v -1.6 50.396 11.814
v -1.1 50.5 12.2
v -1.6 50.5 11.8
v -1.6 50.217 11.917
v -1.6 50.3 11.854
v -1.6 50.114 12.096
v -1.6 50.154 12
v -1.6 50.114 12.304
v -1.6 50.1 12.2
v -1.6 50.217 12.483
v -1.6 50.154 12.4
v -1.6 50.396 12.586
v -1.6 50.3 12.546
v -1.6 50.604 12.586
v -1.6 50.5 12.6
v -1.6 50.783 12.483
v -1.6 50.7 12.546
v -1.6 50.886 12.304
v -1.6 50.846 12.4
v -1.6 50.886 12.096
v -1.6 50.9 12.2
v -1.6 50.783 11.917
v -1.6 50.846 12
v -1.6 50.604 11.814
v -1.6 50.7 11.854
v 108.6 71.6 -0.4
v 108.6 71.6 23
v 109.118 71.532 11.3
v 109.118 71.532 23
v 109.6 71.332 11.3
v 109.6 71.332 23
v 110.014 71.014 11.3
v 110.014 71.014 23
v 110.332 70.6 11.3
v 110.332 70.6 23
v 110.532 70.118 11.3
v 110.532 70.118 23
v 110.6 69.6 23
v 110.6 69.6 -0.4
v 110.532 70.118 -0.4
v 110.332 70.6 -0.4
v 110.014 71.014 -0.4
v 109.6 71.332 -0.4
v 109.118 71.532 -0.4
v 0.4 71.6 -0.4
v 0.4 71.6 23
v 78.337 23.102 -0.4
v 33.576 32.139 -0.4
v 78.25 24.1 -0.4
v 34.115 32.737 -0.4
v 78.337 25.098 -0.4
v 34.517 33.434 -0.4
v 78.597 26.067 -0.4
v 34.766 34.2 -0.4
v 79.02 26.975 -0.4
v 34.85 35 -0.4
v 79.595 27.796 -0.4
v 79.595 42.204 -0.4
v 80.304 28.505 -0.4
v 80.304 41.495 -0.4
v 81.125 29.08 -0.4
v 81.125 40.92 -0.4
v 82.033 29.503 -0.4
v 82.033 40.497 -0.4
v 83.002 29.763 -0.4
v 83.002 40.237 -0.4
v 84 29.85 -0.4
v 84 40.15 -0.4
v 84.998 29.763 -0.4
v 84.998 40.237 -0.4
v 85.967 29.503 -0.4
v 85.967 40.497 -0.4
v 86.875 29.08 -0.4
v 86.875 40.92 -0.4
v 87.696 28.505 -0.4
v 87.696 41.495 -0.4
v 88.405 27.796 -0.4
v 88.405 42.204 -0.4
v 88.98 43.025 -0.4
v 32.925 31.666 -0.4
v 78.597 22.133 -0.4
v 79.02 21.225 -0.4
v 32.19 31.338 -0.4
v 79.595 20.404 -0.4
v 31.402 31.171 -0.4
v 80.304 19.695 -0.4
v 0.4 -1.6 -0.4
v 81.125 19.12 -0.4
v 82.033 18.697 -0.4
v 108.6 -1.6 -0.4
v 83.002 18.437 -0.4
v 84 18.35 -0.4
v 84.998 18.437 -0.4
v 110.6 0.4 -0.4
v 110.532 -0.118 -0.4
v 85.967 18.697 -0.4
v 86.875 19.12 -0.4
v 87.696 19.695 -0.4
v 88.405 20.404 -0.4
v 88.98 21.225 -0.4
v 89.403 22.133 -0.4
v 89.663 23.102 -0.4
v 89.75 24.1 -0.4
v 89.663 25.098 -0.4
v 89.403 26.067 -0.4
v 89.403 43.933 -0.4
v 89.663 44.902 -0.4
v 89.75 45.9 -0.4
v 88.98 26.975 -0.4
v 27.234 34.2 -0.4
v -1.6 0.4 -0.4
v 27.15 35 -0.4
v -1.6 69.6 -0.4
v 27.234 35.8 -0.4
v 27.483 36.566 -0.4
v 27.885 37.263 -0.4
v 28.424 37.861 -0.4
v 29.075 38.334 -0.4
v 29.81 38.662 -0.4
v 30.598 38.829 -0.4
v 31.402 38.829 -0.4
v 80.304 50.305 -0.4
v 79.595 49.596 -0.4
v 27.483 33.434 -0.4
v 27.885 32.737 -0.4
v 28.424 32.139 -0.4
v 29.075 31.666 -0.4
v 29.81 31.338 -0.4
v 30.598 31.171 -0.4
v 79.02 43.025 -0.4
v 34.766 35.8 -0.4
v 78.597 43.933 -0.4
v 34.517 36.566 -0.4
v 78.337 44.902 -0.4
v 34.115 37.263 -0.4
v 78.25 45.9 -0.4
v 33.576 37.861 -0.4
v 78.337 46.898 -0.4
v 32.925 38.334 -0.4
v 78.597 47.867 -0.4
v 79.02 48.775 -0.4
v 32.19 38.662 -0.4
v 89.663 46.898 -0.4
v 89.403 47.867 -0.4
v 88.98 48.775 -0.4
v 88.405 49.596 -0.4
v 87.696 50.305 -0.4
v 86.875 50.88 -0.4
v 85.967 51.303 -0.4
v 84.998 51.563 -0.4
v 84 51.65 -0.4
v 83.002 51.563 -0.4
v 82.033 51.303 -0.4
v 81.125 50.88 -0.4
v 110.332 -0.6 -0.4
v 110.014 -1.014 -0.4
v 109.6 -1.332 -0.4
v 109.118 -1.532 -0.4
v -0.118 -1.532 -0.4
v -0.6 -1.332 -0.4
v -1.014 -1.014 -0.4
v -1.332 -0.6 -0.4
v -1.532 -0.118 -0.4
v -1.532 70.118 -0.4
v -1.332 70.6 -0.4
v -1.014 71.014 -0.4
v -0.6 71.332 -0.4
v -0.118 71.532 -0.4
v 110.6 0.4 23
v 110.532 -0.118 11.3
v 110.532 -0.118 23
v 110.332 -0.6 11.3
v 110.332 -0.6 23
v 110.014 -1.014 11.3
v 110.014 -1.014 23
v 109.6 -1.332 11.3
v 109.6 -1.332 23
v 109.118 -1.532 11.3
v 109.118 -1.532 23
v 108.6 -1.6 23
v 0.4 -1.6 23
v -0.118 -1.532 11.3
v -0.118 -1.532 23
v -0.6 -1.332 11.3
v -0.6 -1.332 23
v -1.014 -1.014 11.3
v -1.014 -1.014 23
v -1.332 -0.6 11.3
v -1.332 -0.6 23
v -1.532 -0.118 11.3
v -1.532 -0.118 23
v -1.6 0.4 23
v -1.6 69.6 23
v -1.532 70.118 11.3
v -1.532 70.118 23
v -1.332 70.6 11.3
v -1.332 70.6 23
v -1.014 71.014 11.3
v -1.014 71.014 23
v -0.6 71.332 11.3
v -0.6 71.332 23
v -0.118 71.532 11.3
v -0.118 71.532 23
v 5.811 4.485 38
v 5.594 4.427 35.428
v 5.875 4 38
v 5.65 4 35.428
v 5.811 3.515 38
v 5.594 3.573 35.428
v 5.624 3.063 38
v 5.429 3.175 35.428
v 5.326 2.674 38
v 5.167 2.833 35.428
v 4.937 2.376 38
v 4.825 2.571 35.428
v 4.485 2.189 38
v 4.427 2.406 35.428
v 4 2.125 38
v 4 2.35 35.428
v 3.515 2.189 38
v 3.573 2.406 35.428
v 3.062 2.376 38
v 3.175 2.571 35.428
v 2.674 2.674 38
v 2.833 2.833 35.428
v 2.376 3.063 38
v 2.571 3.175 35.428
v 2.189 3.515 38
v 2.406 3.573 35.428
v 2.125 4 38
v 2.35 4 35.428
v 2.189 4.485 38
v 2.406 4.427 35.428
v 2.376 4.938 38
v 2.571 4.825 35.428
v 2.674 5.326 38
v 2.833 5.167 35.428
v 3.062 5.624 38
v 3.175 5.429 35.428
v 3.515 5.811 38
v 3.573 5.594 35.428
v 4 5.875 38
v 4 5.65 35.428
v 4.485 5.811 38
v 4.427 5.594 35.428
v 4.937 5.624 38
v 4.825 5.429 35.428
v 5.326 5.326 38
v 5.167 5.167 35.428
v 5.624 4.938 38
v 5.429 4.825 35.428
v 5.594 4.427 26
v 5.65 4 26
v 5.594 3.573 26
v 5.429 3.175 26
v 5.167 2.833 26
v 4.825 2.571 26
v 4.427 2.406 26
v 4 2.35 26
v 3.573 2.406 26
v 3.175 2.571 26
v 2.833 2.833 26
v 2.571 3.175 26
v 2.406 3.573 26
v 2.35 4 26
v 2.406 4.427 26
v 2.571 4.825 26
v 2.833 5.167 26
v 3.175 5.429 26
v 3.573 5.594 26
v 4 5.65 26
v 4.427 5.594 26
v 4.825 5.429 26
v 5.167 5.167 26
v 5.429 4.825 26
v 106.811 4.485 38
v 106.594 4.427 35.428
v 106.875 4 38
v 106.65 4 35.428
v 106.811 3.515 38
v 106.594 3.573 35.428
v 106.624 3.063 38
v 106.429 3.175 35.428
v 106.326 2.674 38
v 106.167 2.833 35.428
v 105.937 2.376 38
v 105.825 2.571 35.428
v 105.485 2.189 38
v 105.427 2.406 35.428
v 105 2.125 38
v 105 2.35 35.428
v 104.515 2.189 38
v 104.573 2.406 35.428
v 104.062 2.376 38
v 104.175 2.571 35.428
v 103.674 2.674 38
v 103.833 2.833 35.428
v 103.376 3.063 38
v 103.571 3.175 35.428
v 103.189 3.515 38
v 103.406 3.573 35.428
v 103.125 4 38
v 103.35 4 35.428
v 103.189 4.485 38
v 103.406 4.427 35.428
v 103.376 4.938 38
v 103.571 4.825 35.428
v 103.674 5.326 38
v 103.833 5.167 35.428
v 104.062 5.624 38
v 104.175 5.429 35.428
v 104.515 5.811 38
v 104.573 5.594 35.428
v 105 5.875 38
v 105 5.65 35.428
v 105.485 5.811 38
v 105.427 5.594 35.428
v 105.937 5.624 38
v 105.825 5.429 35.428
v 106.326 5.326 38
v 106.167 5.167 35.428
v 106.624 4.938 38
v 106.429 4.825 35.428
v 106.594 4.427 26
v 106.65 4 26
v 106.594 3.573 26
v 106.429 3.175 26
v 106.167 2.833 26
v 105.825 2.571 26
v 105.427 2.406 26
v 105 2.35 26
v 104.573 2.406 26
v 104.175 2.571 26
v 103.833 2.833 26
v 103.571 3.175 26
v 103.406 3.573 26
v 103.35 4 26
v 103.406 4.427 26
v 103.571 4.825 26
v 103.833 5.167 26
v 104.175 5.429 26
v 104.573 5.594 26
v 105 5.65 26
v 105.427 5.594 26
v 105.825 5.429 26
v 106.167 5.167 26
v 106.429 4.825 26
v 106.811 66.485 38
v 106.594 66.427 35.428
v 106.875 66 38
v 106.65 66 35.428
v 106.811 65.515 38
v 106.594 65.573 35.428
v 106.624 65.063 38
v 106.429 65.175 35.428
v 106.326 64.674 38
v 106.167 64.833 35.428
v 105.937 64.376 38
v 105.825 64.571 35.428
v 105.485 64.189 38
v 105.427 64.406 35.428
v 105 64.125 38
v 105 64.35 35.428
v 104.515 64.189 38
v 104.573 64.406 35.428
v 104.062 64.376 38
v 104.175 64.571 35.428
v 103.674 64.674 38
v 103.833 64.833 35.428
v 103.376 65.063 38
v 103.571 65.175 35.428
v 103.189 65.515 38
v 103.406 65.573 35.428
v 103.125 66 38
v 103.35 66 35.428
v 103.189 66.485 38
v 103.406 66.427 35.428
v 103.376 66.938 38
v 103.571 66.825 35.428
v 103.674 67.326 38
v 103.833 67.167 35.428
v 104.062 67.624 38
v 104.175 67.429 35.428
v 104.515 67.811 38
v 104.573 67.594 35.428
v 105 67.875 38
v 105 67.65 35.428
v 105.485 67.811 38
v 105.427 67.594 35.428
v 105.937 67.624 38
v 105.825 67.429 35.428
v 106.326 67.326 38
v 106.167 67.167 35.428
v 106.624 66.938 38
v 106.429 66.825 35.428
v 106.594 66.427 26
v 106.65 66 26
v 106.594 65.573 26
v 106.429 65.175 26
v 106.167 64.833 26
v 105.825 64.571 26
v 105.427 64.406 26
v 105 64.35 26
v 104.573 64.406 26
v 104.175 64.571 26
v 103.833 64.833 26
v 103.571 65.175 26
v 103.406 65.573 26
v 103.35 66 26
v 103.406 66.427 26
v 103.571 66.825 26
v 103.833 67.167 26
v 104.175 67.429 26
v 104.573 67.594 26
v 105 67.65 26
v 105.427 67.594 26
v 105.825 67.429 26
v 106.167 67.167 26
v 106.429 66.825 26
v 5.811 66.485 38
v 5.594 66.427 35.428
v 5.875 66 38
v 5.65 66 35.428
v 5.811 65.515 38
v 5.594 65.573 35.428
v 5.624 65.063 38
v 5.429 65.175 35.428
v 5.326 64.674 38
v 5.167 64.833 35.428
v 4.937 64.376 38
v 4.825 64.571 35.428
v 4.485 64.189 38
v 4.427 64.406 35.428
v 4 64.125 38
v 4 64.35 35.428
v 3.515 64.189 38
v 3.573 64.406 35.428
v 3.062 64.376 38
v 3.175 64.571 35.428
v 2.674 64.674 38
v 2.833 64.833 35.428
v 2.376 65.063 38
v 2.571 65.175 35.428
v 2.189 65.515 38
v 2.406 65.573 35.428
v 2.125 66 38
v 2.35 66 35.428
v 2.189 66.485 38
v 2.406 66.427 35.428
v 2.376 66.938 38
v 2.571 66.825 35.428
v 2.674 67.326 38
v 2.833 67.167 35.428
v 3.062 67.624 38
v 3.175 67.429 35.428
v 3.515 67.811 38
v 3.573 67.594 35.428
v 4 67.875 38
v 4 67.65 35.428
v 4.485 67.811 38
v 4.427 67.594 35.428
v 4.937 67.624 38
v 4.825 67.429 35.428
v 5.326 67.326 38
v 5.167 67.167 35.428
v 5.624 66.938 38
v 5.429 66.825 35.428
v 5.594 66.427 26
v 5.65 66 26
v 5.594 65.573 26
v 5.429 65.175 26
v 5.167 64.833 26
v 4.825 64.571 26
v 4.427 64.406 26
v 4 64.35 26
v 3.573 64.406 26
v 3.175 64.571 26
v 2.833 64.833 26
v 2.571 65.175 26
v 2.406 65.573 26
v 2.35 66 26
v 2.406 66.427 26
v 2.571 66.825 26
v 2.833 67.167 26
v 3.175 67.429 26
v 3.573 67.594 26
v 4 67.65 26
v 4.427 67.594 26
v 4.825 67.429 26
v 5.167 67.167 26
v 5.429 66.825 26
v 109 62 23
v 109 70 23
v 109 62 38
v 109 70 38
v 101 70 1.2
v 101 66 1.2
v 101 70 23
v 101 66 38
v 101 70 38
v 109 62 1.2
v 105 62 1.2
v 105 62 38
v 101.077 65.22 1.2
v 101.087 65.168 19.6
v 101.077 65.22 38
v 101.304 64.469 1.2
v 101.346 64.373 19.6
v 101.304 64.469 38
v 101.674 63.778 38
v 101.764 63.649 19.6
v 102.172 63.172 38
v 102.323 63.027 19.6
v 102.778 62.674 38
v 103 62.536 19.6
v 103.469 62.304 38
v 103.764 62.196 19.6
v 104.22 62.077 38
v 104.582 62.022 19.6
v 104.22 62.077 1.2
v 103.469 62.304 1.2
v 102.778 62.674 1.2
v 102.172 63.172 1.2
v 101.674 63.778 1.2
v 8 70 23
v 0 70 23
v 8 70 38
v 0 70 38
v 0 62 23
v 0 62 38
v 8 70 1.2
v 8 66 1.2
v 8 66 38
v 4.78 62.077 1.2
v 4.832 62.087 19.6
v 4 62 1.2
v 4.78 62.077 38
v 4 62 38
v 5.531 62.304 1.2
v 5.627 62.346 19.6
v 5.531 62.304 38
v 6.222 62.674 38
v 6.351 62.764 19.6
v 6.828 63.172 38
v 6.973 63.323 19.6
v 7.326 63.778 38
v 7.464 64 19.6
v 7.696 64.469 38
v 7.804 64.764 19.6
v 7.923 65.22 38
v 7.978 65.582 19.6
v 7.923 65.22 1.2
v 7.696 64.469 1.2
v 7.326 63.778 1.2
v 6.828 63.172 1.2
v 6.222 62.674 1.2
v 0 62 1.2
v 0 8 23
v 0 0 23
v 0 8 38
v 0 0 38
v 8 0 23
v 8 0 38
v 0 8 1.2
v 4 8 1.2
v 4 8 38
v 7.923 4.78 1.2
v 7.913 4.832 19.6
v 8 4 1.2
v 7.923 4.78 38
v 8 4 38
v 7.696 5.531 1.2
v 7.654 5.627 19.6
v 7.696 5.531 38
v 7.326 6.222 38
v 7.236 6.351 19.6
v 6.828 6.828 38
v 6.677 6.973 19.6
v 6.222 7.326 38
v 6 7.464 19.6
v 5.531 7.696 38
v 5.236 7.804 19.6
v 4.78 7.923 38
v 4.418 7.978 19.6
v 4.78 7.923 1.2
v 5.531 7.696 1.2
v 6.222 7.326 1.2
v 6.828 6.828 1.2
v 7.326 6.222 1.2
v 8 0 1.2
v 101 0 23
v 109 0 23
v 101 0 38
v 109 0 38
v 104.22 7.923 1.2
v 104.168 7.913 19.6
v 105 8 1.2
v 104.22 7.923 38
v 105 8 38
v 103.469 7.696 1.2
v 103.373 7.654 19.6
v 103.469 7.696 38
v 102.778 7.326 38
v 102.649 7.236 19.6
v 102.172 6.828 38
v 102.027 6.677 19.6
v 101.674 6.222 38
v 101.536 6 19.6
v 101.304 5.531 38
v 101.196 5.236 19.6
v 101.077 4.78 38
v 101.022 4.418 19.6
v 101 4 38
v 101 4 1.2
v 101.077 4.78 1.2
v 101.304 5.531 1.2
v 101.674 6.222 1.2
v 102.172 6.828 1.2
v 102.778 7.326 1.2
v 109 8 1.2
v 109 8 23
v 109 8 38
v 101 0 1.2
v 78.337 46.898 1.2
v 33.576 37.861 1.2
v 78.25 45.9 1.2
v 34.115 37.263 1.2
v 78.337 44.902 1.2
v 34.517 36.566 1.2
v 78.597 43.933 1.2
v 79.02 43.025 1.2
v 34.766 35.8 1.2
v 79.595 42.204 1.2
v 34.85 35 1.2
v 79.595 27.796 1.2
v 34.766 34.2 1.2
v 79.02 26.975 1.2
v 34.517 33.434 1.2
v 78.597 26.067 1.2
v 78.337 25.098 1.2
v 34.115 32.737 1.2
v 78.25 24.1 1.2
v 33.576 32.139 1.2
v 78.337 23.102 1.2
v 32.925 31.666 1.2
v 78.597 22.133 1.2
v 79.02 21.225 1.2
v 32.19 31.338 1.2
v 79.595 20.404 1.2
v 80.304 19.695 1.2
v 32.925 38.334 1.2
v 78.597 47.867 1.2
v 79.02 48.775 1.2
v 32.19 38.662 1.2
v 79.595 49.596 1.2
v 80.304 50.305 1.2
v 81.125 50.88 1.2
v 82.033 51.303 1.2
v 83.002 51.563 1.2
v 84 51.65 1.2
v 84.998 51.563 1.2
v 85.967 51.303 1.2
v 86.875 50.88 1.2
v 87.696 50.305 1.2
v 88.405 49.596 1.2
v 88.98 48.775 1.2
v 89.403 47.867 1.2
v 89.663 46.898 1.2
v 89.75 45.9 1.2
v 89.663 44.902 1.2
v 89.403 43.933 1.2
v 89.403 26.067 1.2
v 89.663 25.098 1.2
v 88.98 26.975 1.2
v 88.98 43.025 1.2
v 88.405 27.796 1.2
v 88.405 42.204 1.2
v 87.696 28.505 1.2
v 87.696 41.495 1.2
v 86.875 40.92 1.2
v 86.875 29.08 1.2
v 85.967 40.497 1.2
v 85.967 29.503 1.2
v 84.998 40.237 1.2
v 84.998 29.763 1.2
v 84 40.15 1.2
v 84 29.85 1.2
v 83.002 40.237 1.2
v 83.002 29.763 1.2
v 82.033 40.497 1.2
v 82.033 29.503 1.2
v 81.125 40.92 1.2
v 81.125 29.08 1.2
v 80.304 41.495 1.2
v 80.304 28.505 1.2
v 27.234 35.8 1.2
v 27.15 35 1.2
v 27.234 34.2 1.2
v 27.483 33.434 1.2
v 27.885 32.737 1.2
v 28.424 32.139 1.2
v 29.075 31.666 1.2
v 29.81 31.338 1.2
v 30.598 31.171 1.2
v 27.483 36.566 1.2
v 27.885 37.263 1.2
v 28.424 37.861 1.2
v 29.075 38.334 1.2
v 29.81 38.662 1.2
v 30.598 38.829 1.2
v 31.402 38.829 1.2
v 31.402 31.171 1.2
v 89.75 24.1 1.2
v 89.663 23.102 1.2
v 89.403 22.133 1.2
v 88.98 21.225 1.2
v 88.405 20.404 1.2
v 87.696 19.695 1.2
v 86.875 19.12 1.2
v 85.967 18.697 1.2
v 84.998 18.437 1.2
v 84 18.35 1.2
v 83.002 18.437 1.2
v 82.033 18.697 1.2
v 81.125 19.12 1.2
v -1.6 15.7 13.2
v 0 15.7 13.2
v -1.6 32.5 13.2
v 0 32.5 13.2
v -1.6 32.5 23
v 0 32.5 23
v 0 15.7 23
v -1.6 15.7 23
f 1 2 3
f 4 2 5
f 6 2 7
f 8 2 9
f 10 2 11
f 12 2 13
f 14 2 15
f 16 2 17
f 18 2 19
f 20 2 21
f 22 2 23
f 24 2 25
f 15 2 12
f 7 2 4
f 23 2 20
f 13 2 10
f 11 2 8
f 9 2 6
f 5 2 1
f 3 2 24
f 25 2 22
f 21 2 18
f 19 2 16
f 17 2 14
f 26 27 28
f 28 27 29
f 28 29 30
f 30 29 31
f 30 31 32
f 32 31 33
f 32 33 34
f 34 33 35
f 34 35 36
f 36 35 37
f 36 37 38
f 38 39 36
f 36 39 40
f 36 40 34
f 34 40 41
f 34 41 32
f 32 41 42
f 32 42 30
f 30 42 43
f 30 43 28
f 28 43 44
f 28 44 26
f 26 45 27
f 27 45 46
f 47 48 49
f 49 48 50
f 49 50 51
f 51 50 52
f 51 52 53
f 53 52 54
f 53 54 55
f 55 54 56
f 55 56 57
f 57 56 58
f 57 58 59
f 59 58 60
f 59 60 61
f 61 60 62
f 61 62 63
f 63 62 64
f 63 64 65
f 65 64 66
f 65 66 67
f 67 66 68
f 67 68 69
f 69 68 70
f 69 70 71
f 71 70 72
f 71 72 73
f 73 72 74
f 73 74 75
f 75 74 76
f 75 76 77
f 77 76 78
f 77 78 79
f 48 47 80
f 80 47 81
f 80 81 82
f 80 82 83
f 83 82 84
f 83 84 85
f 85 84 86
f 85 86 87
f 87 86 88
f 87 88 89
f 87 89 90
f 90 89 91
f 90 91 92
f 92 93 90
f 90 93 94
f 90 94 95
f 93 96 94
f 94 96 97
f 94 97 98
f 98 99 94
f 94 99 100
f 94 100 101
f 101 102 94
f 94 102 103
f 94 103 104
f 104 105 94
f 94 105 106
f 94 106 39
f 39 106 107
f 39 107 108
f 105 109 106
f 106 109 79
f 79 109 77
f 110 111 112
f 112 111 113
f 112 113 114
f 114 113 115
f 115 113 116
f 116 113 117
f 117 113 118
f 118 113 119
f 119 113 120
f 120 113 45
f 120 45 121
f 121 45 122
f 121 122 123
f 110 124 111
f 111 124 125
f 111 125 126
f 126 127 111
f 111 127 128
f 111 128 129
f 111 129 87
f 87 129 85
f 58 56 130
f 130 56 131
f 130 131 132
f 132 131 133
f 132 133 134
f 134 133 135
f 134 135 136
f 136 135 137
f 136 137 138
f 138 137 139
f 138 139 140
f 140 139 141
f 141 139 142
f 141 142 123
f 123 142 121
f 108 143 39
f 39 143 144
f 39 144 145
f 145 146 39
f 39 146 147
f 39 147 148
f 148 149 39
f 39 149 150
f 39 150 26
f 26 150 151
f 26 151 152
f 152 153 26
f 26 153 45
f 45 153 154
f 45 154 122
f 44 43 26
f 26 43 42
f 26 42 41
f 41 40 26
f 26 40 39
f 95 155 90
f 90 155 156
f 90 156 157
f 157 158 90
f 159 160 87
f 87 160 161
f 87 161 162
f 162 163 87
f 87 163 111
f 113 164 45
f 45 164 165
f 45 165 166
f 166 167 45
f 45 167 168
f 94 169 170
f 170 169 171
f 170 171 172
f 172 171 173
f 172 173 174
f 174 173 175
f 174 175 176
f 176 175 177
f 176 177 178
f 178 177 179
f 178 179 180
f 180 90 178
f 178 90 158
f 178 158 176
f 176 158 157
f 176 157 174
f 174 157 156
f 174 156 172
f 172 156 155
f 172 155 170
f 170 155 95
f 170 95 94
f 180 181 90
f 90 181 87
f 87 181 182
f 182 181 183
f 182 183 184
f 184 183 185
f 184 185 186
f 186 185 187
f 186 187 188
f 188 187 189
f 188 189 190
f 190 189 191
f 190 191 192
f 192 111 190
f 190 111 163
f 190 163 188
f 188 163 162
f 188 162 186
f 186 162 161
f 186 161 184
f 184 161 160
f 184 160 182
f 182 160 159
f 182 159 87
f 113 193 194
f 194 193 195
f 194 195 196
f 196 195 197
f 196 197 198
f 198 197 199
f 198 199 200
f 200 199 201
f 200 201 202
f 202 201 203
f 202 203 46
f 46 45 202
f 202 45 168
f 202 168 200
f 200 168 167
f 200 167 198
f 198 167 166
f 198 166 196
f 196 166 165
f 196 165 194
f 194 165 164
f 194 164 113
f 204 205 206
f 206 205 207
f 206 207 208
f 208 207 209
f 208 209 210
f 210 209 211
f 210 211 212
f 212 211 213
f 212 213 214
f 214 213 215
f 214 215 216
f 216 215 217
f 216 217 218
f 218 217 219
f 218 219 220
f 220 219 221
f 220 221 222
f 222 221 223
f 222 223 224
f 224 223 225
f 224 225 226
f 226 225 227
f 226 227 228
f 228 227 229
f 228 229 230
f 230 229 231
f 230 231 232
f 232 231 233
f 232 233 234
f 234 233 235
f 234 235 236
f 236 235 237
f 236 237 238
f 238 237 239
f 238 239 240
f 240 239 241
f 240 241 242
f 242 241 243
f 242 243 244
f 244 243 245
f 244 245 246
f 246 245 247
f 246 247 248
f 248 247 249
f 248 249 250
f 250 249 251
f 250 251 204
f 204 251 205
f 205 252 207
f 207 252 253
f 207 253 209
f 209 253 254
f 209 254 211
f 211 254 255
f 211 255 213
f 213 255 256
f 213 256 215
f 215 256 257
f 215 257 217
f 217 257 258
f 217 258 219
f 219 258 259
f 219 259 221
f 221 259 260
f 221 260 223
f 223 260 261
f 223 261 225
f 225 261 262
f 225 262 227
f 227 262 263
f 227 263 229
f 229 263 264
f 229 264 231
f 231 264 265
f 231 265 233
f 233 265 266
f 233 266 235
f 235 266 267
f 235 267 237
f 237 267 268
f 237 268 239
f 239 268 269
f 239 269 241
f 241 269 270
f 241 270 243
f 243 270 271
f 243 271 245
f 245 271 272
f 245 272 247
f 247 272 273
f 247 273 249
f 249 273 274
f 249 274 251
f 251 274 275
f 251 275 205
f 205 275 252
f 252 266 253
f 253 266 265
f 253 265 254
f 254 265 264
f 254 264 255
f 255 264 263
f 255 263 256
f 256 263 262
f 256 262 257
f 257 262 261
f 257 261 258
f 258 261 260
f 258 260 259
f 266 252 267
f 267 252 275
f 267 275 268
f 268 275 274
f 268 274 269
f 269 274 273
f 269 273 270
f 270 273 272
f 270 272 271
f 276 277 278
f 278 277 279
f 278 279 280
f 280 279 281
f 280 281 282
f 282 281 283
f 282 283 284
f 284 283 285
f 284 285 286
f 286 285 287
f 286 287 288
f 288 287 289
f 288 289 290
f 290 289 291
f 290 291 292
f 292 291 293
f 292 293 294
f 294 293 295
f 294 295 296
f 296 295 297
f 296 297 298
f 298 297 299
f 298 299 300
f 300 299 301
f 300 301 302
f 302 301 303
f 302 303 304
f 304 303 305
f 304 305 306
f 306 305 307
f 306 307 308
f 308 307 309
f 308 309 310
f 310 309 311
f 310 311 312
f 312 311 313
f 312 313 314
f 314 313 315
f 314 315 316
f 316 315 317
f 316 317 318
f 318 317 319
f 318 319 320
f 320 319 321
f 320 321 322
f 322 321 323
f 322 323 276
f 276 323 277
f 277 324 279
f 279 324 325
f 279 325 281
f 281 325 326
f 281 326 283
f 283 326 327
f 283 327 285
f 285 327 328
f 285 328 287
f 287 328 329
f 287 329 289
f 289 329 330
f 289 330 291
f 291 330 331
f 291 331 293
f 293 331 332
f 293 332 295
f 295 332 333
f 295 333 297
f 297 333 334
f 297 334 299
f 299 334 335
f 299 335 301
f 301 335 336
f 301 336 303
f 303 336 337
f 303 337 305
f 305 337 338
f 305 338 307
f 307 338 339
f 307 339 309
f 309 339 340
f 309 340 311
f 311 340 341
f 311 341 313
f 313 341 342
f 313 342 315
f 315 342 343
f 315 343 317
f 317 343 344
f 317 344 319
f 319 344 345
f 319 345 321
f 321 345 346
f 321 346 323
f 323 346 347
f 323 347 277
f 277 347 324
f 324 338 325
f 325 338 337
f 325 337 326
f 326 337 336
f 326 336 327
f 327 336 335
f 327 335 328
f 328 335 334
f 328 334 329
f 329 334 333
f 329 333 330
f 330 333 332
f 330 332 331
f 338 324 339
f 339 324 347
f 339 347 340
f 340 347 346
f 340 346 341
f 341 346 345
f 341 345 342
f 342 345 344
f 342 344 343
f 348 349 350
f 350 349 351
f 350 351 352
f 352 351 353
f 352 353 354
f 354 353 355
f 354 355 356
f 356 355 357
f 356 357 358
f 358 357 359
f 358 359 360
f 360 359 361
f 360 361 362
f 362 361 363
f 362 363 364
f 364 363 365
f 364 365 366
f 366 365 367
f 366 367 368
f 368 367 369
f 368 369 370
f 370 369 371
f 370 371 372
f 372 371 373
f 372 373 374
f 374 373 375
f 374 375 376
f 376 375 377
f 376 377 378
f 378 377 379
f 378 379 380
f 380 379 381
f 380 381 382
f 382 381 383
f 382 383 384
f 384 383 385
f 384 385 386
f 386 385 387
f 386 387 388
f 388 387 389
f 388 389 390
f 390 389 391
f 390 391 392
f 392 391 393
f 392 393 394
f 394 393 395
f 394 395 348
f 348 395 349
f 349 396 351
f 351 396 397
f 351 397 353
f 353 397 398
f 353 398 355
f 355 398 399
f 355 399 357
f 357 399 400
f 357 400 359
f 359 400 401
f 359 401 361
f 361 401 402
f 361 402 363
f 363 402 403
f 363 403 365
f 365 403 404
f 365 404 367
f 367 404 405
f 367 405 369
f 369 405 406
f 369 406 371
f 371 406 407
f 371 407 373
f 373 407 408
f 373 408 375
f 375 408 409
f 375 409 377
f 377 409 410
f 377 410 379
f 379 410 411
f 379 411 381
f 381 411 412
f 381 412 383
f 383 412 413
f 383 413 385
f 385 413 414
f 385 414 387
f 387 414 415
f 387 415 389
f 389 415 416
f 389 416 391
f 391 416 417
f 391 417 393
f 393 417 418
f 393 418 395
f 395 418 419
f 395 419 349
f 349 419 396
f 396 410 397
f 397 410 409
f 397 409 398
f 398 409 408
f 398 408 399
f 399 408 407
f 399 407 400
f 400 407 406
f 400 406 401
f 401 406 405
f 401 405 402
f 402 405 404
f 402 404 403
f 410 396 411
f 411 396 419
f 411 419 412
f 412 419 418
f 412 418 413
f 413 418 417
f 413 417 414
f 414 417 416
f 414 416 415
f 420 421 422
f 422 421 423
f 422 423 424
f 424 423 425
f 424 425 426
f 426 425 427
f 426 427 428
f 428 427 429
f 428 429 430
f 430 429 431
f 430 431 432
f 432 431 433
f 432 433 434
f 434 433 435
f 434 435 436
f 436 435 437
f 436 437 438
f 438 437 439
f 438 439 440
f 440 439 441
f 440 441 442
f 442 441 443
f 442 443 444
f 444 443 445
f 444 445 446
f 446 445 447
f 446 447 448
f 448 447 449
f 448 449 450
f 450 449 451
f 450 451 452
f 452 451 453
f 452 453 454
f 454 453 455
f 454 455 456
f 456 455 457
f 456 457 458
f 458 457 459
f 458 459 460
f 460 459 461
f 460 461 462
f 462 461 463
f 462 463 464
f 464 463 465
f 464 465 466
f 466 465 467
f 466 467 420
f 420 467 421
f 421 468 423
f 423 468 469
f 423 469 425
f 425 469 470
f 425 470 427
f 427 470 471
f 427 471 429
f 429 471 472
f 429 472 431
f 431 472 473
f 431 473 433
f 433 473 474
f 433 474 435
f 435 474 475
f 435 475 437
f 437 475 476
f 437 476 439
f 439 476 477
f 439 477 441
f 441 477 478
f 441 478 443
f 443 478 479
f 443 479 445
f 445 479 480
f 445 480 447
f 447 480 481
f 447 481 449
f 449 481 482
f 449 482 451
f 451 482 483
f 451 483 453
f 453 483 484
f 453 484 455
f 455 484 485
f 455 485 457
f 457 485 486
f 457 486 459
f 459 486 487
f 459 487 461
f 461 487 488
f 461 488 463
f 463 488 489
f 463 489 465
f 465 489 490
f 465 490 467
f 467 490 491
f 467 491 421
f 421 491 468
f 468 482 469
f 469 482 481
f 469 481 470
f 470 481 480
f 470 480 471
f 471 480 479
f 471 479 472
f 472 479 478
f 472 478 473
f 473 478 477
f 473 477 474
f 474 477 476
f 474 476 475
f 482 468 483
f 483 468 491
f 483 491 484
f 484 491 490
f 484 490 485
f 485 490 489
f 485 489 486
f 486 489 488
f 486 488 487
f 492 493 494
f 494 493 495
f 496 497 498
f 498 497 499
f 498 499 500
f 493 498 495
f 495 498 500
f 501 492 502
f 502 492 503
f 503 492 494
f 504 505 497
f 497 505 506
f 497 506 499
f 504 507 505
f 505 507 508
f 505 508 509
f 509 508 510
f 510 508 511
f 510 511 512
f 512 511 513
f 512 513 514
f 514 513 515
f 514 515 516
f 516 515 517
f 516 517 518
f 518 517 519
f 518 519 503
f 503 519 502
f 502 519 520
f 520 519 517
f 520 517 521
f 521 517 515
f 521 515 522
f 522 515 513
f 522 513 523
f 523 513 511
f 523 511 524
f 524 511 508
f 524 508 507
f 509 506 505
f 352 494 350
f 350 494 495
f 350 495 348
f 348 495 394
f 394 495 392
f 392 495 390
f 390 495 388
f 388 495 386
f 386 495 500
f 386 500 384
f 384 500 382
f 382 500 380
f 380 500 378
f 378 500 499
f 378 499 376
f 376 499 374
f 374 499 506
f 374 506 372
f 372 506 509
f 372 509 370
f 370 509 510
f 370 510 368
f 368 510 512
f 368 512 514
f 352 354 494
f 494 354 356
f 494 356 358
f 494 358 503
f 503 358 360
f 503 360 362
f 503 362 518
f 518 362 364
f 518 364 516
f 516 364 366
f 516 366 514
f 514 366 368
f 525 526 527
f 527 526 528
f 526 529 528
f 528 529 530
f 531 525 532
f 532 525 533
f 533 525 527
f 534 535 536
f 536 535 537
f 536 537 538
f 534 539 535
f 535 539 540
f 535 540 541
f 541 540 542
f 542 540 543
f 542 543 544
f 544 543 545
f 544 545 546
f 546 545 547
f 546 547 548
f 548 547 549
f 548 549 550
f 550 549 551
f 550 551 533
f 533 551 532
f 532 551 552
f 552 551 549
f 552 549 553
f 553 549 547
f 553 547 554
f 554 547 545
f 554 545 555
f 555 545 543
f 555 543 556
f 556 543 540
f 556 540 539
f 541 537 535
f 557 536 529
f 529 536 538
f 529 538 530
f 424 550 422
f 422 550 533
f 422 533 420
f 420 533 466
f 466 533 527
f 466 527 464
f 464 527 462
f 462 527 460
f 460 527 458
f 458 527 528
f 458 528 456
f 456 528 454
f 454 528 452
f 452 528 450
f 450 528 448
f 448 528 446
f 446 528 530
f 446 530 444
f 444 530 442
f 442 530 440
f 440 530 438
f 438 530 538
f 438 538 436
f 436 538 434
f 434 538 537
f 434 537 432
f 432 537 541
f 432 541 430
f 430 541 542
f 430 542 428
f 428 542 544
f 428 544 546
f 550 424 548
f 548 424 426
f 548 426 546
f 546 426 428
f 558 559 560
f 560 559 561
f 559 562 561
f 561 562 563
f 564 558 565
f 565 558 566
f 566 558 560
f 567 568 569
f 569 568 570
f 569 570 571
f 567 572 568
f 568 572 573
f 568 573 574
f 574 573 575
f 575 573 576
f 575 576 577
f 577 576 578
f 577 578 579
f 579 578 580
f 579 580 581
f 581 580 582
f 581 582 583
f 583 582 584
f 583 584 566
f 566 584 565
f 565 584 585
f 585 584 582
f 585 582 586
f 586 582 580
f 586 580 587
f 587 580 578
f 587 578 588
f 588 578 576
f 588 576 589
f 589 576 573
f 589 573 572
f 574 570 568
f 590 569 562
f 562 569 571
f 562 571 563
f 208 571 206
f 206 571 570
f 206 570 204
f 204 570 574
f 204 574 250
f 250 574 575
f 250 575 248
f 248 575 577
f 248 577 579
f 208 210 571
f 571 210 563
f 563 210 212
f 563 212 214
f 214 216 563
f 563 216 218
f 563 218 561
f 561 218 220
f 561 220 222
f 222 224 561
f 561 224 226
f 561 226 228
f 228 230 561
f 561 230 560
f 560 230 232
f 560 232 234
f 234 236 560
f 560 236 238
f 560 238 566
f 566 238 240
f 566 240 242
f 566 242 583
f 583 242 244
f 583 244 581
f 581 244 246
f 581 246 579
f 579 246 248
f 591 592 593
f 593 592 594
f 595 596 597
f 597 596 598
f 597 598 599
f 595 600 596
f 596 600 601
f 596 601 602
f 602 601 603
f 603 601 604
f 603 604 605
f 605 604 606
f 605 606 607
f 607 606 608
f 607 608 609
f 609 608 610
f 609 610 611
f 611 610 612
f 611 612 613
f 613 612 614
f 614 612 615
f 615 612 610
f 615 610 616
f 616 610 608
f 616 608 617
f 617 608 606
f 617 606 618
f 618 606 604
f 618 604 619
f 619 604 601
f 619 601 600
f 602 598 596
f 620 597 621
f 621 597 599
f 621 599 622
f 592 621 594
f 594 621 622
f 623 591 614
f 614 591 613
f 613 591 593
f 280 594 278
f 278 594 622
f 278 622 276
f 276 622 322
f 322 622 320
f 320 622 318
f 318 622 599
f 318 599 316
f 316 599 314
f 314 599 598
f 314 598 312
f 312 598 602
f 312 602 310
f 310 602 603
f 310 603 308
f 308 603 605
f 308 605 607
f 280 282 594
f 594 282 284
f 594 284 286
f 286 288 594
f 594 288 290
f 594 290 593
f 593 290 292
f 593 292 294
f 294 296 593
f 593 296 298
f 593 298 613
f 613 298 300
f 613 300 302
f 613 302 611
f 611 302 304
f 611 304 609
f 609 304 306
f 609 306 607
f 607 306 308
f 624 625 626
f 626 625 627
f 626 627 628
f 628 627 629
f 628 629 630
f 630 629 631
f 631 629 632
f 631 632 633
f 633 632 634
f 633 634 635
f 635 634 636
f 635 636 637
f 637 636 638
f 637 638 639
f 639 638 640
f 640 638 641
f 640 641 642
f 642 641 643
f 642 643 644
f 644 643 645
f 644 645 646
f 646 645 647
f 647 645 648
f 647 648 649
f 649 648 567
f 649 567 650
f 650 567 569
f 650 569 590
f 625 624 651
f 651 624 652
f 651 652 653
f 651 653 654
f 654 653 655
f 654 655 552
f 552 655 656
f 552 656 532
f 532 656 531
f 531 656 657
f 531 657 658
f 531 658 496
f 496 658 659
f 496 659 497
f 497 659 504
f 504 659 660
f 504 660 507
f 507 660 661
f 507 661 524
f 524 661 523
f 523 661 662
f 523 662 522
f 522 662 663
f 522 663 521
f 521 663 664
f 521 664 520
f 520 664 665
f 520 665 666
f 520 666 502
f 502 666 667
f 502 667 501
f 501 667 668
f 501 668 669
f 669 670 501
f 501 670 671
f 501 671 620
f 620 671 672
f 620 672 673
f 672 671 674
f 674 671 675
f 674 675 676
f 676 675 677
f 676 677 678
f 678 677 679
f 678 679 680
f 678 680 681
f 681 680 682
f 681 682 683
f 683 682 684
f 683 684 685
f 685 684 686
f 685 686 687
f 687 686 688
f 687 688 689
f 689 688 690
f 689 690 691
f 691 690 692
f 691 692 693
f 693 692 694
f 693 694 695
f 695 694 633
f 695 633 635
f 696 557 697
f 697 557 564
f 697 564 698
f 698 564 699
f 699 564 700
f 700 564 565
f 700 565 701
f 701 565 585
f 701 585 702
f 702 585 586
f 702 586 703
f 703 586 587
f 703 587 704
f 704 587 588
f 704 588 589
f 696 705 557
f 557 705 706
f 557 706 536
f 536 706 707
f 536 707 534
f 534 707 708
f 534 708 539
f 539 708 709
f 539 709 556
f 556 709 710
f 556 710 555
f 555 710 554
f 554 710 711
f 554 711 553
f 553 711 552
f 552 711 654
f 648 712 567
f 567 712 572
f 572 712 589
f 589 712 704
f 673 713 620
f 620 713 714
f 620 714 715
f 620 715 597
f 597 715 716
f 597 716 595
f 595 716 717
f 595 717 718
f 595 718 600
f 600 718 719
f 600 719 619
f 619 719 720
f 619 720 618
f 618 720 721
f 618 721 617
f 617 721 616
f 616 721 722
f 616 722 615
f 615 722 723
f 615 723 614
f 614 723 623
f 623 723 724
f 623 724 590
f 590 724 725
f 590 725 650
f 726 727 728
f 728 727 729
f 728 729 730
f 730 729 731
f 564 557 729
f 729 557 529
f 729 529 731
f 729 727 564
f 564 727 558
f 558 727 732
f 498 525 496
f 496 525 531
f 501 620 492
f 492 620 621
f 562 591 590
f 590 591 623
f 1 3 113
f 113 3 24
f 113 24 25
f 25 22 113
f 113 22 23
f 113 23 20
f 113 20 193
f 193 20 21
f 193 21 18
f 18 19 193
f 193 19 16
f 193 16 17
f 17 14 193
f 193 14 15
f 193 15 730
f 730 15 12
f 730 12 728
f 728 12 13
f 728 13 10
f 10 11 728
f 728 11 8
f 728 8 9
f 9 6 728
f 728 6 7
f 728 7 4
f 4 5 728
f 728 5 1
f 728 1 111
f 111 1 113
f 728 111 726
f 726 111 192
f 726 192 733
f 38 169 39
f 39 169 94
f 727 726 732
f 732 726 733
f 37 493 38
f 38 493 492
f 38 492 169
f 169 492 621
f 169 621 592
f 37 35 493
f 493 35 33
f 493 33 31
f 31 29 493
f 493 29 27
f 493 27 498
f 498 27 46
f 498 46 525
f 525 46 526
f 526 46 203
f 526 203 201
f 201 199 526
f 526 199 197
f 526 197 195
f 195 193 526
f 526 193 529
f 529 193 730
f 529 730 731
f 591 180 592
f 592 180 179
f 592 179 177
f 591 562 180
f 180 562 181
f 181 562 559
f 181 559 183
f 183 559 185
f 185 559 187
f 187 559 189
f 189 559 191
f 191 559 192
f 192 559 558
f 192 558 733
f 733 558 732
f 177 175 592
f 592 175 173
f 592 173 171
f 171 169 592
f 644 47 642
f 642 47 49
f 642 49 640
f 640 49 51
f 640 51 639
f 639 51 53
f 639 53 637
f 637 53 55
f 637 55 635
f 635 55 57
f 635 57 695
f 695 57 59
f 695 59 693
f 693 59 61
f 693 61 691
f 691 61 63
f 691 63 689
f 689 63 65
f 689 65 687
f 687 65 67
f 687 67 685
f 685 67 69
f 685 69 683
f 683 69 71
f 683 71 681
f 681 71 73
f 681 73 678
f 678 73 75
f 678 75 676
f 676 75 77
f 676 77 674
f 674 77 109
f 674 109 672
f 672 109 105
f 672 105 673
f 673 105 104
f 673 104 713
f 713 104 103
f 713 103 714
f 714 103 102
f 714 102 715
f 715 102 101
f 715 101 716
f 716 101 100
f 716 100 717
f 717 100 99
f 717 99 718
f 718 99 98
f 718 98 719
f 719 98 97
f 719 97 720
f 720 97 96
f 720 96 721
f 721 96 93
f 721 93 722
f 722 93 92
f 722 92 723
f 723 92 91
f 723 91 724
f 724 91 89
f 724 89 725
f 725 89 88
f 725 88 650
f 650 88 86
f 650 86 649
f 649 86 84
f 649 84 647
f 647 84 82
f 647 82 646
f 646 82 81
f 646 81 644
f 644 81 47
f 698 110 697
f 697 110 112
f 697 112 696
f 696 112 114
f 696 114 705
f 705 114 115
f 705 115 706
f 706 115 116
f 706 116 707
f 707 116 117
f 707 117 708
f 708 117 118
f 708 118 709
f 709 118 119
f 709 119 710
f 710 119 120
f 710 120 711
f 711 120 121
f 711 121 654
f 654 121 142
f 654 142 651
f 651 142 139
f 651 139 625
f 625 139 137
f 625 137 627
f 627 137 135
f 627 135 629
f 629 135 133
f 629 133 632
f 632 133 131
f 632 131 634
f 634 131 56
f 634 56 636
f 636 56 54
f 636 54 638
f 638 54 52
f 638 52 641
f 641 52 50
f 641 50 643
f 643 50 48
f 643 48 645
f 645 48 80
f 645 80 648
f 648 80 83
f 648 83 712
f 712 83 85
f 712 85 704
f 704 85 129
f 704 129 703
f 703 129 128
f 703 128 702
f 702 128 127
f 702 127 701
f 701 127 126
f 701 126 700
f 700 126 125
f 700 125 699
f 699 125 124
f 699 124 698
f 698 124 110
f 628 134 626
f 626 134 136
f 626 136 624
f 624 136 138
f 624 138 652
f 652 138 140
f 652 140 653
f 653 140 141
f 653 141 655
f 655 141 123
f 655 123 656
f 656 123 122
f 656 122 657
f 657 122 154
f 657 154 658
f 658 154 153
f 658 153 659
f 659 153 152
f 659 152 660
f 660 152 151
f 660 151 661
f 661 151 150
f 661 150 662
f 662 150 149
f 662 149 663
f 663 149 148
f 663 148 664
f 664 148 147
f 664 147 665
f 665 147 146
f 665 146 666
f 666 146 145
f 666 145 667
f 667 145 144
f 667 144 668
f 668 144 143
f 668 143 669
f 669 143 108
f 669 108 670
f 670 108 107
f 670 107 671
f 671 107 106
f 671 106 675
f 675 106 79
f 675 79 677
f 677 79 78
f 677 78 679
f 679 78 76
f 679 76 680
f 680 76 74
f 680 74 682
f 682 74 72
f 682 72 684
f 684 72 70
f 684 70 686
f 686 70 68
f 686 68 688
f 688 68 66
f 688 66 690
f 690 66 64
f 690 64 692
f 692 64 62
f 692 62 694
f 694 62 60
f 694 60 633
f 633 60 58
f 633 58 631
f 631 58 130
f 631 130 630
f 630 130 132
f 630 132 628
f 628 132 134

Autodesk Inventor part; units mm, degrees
ref_plane "YZ Plane" through (0, 0, 0) normal (1, 0, 0) x (0, 1, 0)
ref_plane "XZ Plane" through (0, 0, 0) normal (0, 1, 0) x (-1, 0, 0)
sketch "zakladna" plane through (0, 0, 0) normal (0, 0, 1) x (1, 0, 0)
  line L0 (0, 0) -> (109, 0)
  line L1 (109, 0) -> (109, 70)
  line L2 (109, 70) -> (0, 70)
  line L3 (0, 70) -> (0, 0)
  dimension "d0" = 109
  dimension "d1" = 70
extrude "Extrusion1" add sketch "zakladna" along normal blind 1.2 and the other way blind 0.4
sketch "stena_RJ45" plane through (0, 0, -0.4) normal (0, 0, -1) x (-1, 0, 0)
  line L0 (1.6, 15.7) -> (0, 15.7)
  line L1 (0, 15.7) -> (0, 32.5)
  line L2 (0, 32.5) -> (1.6, 32.5)
  line L3 (1.6, 32.5) -> (1.6, 15.7)
  line L4 (-109, 0) -> (0, 0) projected
  line L5 (0, 0) -> (0, 70) projected
  dimension "d4" = 1.6
  dimension "d5" = 16.8
  dimension "d6" = 15.7
  dimension "d7" = 0
sketch "diry_tlacirka_LED" plane through (0, 0, -0.4) normal (0, 0, -1) x (-1, 0, 0)
  line L0 (-109, 70) -> (-109, 0) projected
  line L1 (-109, 0) -> (-109, 70) projected
  line L2 (-109, 35) -> (-3.6376, 35)
  line L3 (1.6, 32.5) -> (1.6, 15.7) projected
  circle A0 centre (-84, 24.1) radius 5.75
  circle A1 centre (-84, 45.9) radius 5.75
  circle A2 centre (-31, 35) radius 3.85
  line L4 (0, 0) -> (0, 70) projected
  dimension "d9" = 11.5
  dimension "d10" = 7.7
  dimension "d11" = 31
  dimension "d53" = 25
extrude "Extrusion2" cut sketch "diry_tlacirka_LED" against normal blind 2
sketch "steny" plane through (0, 0, -0.4) normal (0, 0, -1) x (-1, 0, 0)
  line L0 (-109, 70) -> (0, 70) projected
  line L1 (0, 0) -> (-109, 0) projected
  line L2 (0, 15.7) -> (0, 0)
  line L3 (-109, 0) -> (-109, 70) projected
  line L4 (0, 0) -> (-109, 0)
  line L5 (-109, 0) -> (-109, 70)
  line L6 (-109, 70) -> (0, 70)
  line L7 (0, 70) -> (0, 32.5)
  line L8 (1.6, 15.7) -> (1.6, -1.6)
  line L9 (1.6, -1.6) -> (-110.6, -1.6)
  line L10 (-110.6, -1.6) -> (-110.6, 71.6)
  line L11 (-110.6, 71.6) -> (1.6, 71.6)
  line L12 (1.6, 71.6) -> (1.6, 32.5)
  line L13 (1.6, 15.7) -> (0, 15.7) projected
  line L14 (0, 32.5) -> (1.6, 32.5) projected
  dimension "d42" = 1.6
extrude "Extrusion3" add sketch "steny" against normal blind 23.4
extrude "Extrusion4" add sketch "stena_RJ45" against normal blind 13.6
sketch "Sketch5" plane through (0, 0, 1.2) normal (0, 0, 1) x (1, 0, 0)
  arc A0 (4, 62) -> (8, 66) centre (4, 66) ccw
  line L0 (4, 62) -> (0, 62)
  line L1 (8, 66) -> (8, 70)
  line L2 (0, 70) -> (0, 0)
  line L3 (0, 62) -> (0, 70)
  line L4 (0, 70) -> (8, 70)
  arc A1 (8, 4) -> (4, 8) centre (4, 4) ccw
  line L5 (4, 8) -> (0, 8)
  line L6 (8, 4) -> (8, 0)
  line L7 (0, 8) -> (0, 0)
  line L8 (0, 0) -> (8, 0)
  line L9 (109, 0) -> (0, 0) projected
  line L10 (0, 0) -> (8, 0)
  line L11 (109, 70) -> (109, 0) projected
  line L12 (105, 62) -> (109, 62)
  arc A2 (101, 66) -> (105, 62) centre (105, 66) ccw
  line L13 (109, 62) -> (109, 70)
  line L14 (109, 70) -> (101, 70)
  line L15 (101, 66) -> (101, 70)
  line L16 (109, 0) -> (101, 0)
  line L17 (109, 0) -> (101, 0)
  line L18 (101, 4) -> (101, 0)
  line L19 (105, 8) -> (109, 8)
  line L20 (109, 8) -> (109, 0)
  arc A3 (105, 8) -> (101, 4) centre (105, 4) ccw
  point P0 (0, 32.5)
  dimension "d22" = 8
extrude "Extrusion5" add sketch "Sketch5" along normal blind 36.8
sketch "diry_zavitova_vlozka" plane through (0, 0, 38) normal (0, 0, 1) x (1, 0, 0)
  arc A0 (8, 4) -> (4, 8) centre (4, 4) ccw projected
  arc A1 (4, 62) -> (8, 66) centre (4, 66) ccw projected
  arc A2 (105, 8) -> (101, 4) centre (105, 4) ccw projected
  arc A3 (101, 66) -> (105, 62) centre (105, 66) ccw projected
  point P0 (0, 0)
hole "Hole1" at (105, 4, 38) at (105, 66, 38) at (4, 4, 38) at (4, 66, 38) direction (0, 0, -1) diameter 3.3 depth 12 countersink diameter 3.75 countersink angle 10
fillet "Fillet1" radius 2 4 edges at (-1.6, 71.6, 11.3) (-1.6, -1.6, 11.3) (110.6, -1.6, 11.3) (110.6, 71.6, 11.3)
sketch "znacka_napajeni1" plane through (-1.6, 15.7, 13.2) normal (-1, 0, 0) x (0, 0, 1)
  circle A0 centre (-1, 34.8) radius 0.4
  line L0 (0, 16.8) -> (0, 0) projected
  line L1 (0, 16.8) -> (9.8, 16.8) projected
  dimension "d44" = 0.8
  dimension "d45" = 1
  dimension "d46" = 18
ref_plane "rovina_napajeni_znacka2" through (-1.1, 15.7, 13.2) normal (-1, 0, 0) x (0, 0, 1)
sketch "napajeni_znacka2" plane through (-1.1, 15.7, 13.2) normal (-1, 0, 0) x (0, 0, 1)
  point P0 (-13.2, -15.7)
  point P1 (-1, 34.8)
loft "Loft1" cut profiles "znacka_napajeni1" section 2 point at (-1.1, 50.5, 12.2)
properties part number "case_top"
